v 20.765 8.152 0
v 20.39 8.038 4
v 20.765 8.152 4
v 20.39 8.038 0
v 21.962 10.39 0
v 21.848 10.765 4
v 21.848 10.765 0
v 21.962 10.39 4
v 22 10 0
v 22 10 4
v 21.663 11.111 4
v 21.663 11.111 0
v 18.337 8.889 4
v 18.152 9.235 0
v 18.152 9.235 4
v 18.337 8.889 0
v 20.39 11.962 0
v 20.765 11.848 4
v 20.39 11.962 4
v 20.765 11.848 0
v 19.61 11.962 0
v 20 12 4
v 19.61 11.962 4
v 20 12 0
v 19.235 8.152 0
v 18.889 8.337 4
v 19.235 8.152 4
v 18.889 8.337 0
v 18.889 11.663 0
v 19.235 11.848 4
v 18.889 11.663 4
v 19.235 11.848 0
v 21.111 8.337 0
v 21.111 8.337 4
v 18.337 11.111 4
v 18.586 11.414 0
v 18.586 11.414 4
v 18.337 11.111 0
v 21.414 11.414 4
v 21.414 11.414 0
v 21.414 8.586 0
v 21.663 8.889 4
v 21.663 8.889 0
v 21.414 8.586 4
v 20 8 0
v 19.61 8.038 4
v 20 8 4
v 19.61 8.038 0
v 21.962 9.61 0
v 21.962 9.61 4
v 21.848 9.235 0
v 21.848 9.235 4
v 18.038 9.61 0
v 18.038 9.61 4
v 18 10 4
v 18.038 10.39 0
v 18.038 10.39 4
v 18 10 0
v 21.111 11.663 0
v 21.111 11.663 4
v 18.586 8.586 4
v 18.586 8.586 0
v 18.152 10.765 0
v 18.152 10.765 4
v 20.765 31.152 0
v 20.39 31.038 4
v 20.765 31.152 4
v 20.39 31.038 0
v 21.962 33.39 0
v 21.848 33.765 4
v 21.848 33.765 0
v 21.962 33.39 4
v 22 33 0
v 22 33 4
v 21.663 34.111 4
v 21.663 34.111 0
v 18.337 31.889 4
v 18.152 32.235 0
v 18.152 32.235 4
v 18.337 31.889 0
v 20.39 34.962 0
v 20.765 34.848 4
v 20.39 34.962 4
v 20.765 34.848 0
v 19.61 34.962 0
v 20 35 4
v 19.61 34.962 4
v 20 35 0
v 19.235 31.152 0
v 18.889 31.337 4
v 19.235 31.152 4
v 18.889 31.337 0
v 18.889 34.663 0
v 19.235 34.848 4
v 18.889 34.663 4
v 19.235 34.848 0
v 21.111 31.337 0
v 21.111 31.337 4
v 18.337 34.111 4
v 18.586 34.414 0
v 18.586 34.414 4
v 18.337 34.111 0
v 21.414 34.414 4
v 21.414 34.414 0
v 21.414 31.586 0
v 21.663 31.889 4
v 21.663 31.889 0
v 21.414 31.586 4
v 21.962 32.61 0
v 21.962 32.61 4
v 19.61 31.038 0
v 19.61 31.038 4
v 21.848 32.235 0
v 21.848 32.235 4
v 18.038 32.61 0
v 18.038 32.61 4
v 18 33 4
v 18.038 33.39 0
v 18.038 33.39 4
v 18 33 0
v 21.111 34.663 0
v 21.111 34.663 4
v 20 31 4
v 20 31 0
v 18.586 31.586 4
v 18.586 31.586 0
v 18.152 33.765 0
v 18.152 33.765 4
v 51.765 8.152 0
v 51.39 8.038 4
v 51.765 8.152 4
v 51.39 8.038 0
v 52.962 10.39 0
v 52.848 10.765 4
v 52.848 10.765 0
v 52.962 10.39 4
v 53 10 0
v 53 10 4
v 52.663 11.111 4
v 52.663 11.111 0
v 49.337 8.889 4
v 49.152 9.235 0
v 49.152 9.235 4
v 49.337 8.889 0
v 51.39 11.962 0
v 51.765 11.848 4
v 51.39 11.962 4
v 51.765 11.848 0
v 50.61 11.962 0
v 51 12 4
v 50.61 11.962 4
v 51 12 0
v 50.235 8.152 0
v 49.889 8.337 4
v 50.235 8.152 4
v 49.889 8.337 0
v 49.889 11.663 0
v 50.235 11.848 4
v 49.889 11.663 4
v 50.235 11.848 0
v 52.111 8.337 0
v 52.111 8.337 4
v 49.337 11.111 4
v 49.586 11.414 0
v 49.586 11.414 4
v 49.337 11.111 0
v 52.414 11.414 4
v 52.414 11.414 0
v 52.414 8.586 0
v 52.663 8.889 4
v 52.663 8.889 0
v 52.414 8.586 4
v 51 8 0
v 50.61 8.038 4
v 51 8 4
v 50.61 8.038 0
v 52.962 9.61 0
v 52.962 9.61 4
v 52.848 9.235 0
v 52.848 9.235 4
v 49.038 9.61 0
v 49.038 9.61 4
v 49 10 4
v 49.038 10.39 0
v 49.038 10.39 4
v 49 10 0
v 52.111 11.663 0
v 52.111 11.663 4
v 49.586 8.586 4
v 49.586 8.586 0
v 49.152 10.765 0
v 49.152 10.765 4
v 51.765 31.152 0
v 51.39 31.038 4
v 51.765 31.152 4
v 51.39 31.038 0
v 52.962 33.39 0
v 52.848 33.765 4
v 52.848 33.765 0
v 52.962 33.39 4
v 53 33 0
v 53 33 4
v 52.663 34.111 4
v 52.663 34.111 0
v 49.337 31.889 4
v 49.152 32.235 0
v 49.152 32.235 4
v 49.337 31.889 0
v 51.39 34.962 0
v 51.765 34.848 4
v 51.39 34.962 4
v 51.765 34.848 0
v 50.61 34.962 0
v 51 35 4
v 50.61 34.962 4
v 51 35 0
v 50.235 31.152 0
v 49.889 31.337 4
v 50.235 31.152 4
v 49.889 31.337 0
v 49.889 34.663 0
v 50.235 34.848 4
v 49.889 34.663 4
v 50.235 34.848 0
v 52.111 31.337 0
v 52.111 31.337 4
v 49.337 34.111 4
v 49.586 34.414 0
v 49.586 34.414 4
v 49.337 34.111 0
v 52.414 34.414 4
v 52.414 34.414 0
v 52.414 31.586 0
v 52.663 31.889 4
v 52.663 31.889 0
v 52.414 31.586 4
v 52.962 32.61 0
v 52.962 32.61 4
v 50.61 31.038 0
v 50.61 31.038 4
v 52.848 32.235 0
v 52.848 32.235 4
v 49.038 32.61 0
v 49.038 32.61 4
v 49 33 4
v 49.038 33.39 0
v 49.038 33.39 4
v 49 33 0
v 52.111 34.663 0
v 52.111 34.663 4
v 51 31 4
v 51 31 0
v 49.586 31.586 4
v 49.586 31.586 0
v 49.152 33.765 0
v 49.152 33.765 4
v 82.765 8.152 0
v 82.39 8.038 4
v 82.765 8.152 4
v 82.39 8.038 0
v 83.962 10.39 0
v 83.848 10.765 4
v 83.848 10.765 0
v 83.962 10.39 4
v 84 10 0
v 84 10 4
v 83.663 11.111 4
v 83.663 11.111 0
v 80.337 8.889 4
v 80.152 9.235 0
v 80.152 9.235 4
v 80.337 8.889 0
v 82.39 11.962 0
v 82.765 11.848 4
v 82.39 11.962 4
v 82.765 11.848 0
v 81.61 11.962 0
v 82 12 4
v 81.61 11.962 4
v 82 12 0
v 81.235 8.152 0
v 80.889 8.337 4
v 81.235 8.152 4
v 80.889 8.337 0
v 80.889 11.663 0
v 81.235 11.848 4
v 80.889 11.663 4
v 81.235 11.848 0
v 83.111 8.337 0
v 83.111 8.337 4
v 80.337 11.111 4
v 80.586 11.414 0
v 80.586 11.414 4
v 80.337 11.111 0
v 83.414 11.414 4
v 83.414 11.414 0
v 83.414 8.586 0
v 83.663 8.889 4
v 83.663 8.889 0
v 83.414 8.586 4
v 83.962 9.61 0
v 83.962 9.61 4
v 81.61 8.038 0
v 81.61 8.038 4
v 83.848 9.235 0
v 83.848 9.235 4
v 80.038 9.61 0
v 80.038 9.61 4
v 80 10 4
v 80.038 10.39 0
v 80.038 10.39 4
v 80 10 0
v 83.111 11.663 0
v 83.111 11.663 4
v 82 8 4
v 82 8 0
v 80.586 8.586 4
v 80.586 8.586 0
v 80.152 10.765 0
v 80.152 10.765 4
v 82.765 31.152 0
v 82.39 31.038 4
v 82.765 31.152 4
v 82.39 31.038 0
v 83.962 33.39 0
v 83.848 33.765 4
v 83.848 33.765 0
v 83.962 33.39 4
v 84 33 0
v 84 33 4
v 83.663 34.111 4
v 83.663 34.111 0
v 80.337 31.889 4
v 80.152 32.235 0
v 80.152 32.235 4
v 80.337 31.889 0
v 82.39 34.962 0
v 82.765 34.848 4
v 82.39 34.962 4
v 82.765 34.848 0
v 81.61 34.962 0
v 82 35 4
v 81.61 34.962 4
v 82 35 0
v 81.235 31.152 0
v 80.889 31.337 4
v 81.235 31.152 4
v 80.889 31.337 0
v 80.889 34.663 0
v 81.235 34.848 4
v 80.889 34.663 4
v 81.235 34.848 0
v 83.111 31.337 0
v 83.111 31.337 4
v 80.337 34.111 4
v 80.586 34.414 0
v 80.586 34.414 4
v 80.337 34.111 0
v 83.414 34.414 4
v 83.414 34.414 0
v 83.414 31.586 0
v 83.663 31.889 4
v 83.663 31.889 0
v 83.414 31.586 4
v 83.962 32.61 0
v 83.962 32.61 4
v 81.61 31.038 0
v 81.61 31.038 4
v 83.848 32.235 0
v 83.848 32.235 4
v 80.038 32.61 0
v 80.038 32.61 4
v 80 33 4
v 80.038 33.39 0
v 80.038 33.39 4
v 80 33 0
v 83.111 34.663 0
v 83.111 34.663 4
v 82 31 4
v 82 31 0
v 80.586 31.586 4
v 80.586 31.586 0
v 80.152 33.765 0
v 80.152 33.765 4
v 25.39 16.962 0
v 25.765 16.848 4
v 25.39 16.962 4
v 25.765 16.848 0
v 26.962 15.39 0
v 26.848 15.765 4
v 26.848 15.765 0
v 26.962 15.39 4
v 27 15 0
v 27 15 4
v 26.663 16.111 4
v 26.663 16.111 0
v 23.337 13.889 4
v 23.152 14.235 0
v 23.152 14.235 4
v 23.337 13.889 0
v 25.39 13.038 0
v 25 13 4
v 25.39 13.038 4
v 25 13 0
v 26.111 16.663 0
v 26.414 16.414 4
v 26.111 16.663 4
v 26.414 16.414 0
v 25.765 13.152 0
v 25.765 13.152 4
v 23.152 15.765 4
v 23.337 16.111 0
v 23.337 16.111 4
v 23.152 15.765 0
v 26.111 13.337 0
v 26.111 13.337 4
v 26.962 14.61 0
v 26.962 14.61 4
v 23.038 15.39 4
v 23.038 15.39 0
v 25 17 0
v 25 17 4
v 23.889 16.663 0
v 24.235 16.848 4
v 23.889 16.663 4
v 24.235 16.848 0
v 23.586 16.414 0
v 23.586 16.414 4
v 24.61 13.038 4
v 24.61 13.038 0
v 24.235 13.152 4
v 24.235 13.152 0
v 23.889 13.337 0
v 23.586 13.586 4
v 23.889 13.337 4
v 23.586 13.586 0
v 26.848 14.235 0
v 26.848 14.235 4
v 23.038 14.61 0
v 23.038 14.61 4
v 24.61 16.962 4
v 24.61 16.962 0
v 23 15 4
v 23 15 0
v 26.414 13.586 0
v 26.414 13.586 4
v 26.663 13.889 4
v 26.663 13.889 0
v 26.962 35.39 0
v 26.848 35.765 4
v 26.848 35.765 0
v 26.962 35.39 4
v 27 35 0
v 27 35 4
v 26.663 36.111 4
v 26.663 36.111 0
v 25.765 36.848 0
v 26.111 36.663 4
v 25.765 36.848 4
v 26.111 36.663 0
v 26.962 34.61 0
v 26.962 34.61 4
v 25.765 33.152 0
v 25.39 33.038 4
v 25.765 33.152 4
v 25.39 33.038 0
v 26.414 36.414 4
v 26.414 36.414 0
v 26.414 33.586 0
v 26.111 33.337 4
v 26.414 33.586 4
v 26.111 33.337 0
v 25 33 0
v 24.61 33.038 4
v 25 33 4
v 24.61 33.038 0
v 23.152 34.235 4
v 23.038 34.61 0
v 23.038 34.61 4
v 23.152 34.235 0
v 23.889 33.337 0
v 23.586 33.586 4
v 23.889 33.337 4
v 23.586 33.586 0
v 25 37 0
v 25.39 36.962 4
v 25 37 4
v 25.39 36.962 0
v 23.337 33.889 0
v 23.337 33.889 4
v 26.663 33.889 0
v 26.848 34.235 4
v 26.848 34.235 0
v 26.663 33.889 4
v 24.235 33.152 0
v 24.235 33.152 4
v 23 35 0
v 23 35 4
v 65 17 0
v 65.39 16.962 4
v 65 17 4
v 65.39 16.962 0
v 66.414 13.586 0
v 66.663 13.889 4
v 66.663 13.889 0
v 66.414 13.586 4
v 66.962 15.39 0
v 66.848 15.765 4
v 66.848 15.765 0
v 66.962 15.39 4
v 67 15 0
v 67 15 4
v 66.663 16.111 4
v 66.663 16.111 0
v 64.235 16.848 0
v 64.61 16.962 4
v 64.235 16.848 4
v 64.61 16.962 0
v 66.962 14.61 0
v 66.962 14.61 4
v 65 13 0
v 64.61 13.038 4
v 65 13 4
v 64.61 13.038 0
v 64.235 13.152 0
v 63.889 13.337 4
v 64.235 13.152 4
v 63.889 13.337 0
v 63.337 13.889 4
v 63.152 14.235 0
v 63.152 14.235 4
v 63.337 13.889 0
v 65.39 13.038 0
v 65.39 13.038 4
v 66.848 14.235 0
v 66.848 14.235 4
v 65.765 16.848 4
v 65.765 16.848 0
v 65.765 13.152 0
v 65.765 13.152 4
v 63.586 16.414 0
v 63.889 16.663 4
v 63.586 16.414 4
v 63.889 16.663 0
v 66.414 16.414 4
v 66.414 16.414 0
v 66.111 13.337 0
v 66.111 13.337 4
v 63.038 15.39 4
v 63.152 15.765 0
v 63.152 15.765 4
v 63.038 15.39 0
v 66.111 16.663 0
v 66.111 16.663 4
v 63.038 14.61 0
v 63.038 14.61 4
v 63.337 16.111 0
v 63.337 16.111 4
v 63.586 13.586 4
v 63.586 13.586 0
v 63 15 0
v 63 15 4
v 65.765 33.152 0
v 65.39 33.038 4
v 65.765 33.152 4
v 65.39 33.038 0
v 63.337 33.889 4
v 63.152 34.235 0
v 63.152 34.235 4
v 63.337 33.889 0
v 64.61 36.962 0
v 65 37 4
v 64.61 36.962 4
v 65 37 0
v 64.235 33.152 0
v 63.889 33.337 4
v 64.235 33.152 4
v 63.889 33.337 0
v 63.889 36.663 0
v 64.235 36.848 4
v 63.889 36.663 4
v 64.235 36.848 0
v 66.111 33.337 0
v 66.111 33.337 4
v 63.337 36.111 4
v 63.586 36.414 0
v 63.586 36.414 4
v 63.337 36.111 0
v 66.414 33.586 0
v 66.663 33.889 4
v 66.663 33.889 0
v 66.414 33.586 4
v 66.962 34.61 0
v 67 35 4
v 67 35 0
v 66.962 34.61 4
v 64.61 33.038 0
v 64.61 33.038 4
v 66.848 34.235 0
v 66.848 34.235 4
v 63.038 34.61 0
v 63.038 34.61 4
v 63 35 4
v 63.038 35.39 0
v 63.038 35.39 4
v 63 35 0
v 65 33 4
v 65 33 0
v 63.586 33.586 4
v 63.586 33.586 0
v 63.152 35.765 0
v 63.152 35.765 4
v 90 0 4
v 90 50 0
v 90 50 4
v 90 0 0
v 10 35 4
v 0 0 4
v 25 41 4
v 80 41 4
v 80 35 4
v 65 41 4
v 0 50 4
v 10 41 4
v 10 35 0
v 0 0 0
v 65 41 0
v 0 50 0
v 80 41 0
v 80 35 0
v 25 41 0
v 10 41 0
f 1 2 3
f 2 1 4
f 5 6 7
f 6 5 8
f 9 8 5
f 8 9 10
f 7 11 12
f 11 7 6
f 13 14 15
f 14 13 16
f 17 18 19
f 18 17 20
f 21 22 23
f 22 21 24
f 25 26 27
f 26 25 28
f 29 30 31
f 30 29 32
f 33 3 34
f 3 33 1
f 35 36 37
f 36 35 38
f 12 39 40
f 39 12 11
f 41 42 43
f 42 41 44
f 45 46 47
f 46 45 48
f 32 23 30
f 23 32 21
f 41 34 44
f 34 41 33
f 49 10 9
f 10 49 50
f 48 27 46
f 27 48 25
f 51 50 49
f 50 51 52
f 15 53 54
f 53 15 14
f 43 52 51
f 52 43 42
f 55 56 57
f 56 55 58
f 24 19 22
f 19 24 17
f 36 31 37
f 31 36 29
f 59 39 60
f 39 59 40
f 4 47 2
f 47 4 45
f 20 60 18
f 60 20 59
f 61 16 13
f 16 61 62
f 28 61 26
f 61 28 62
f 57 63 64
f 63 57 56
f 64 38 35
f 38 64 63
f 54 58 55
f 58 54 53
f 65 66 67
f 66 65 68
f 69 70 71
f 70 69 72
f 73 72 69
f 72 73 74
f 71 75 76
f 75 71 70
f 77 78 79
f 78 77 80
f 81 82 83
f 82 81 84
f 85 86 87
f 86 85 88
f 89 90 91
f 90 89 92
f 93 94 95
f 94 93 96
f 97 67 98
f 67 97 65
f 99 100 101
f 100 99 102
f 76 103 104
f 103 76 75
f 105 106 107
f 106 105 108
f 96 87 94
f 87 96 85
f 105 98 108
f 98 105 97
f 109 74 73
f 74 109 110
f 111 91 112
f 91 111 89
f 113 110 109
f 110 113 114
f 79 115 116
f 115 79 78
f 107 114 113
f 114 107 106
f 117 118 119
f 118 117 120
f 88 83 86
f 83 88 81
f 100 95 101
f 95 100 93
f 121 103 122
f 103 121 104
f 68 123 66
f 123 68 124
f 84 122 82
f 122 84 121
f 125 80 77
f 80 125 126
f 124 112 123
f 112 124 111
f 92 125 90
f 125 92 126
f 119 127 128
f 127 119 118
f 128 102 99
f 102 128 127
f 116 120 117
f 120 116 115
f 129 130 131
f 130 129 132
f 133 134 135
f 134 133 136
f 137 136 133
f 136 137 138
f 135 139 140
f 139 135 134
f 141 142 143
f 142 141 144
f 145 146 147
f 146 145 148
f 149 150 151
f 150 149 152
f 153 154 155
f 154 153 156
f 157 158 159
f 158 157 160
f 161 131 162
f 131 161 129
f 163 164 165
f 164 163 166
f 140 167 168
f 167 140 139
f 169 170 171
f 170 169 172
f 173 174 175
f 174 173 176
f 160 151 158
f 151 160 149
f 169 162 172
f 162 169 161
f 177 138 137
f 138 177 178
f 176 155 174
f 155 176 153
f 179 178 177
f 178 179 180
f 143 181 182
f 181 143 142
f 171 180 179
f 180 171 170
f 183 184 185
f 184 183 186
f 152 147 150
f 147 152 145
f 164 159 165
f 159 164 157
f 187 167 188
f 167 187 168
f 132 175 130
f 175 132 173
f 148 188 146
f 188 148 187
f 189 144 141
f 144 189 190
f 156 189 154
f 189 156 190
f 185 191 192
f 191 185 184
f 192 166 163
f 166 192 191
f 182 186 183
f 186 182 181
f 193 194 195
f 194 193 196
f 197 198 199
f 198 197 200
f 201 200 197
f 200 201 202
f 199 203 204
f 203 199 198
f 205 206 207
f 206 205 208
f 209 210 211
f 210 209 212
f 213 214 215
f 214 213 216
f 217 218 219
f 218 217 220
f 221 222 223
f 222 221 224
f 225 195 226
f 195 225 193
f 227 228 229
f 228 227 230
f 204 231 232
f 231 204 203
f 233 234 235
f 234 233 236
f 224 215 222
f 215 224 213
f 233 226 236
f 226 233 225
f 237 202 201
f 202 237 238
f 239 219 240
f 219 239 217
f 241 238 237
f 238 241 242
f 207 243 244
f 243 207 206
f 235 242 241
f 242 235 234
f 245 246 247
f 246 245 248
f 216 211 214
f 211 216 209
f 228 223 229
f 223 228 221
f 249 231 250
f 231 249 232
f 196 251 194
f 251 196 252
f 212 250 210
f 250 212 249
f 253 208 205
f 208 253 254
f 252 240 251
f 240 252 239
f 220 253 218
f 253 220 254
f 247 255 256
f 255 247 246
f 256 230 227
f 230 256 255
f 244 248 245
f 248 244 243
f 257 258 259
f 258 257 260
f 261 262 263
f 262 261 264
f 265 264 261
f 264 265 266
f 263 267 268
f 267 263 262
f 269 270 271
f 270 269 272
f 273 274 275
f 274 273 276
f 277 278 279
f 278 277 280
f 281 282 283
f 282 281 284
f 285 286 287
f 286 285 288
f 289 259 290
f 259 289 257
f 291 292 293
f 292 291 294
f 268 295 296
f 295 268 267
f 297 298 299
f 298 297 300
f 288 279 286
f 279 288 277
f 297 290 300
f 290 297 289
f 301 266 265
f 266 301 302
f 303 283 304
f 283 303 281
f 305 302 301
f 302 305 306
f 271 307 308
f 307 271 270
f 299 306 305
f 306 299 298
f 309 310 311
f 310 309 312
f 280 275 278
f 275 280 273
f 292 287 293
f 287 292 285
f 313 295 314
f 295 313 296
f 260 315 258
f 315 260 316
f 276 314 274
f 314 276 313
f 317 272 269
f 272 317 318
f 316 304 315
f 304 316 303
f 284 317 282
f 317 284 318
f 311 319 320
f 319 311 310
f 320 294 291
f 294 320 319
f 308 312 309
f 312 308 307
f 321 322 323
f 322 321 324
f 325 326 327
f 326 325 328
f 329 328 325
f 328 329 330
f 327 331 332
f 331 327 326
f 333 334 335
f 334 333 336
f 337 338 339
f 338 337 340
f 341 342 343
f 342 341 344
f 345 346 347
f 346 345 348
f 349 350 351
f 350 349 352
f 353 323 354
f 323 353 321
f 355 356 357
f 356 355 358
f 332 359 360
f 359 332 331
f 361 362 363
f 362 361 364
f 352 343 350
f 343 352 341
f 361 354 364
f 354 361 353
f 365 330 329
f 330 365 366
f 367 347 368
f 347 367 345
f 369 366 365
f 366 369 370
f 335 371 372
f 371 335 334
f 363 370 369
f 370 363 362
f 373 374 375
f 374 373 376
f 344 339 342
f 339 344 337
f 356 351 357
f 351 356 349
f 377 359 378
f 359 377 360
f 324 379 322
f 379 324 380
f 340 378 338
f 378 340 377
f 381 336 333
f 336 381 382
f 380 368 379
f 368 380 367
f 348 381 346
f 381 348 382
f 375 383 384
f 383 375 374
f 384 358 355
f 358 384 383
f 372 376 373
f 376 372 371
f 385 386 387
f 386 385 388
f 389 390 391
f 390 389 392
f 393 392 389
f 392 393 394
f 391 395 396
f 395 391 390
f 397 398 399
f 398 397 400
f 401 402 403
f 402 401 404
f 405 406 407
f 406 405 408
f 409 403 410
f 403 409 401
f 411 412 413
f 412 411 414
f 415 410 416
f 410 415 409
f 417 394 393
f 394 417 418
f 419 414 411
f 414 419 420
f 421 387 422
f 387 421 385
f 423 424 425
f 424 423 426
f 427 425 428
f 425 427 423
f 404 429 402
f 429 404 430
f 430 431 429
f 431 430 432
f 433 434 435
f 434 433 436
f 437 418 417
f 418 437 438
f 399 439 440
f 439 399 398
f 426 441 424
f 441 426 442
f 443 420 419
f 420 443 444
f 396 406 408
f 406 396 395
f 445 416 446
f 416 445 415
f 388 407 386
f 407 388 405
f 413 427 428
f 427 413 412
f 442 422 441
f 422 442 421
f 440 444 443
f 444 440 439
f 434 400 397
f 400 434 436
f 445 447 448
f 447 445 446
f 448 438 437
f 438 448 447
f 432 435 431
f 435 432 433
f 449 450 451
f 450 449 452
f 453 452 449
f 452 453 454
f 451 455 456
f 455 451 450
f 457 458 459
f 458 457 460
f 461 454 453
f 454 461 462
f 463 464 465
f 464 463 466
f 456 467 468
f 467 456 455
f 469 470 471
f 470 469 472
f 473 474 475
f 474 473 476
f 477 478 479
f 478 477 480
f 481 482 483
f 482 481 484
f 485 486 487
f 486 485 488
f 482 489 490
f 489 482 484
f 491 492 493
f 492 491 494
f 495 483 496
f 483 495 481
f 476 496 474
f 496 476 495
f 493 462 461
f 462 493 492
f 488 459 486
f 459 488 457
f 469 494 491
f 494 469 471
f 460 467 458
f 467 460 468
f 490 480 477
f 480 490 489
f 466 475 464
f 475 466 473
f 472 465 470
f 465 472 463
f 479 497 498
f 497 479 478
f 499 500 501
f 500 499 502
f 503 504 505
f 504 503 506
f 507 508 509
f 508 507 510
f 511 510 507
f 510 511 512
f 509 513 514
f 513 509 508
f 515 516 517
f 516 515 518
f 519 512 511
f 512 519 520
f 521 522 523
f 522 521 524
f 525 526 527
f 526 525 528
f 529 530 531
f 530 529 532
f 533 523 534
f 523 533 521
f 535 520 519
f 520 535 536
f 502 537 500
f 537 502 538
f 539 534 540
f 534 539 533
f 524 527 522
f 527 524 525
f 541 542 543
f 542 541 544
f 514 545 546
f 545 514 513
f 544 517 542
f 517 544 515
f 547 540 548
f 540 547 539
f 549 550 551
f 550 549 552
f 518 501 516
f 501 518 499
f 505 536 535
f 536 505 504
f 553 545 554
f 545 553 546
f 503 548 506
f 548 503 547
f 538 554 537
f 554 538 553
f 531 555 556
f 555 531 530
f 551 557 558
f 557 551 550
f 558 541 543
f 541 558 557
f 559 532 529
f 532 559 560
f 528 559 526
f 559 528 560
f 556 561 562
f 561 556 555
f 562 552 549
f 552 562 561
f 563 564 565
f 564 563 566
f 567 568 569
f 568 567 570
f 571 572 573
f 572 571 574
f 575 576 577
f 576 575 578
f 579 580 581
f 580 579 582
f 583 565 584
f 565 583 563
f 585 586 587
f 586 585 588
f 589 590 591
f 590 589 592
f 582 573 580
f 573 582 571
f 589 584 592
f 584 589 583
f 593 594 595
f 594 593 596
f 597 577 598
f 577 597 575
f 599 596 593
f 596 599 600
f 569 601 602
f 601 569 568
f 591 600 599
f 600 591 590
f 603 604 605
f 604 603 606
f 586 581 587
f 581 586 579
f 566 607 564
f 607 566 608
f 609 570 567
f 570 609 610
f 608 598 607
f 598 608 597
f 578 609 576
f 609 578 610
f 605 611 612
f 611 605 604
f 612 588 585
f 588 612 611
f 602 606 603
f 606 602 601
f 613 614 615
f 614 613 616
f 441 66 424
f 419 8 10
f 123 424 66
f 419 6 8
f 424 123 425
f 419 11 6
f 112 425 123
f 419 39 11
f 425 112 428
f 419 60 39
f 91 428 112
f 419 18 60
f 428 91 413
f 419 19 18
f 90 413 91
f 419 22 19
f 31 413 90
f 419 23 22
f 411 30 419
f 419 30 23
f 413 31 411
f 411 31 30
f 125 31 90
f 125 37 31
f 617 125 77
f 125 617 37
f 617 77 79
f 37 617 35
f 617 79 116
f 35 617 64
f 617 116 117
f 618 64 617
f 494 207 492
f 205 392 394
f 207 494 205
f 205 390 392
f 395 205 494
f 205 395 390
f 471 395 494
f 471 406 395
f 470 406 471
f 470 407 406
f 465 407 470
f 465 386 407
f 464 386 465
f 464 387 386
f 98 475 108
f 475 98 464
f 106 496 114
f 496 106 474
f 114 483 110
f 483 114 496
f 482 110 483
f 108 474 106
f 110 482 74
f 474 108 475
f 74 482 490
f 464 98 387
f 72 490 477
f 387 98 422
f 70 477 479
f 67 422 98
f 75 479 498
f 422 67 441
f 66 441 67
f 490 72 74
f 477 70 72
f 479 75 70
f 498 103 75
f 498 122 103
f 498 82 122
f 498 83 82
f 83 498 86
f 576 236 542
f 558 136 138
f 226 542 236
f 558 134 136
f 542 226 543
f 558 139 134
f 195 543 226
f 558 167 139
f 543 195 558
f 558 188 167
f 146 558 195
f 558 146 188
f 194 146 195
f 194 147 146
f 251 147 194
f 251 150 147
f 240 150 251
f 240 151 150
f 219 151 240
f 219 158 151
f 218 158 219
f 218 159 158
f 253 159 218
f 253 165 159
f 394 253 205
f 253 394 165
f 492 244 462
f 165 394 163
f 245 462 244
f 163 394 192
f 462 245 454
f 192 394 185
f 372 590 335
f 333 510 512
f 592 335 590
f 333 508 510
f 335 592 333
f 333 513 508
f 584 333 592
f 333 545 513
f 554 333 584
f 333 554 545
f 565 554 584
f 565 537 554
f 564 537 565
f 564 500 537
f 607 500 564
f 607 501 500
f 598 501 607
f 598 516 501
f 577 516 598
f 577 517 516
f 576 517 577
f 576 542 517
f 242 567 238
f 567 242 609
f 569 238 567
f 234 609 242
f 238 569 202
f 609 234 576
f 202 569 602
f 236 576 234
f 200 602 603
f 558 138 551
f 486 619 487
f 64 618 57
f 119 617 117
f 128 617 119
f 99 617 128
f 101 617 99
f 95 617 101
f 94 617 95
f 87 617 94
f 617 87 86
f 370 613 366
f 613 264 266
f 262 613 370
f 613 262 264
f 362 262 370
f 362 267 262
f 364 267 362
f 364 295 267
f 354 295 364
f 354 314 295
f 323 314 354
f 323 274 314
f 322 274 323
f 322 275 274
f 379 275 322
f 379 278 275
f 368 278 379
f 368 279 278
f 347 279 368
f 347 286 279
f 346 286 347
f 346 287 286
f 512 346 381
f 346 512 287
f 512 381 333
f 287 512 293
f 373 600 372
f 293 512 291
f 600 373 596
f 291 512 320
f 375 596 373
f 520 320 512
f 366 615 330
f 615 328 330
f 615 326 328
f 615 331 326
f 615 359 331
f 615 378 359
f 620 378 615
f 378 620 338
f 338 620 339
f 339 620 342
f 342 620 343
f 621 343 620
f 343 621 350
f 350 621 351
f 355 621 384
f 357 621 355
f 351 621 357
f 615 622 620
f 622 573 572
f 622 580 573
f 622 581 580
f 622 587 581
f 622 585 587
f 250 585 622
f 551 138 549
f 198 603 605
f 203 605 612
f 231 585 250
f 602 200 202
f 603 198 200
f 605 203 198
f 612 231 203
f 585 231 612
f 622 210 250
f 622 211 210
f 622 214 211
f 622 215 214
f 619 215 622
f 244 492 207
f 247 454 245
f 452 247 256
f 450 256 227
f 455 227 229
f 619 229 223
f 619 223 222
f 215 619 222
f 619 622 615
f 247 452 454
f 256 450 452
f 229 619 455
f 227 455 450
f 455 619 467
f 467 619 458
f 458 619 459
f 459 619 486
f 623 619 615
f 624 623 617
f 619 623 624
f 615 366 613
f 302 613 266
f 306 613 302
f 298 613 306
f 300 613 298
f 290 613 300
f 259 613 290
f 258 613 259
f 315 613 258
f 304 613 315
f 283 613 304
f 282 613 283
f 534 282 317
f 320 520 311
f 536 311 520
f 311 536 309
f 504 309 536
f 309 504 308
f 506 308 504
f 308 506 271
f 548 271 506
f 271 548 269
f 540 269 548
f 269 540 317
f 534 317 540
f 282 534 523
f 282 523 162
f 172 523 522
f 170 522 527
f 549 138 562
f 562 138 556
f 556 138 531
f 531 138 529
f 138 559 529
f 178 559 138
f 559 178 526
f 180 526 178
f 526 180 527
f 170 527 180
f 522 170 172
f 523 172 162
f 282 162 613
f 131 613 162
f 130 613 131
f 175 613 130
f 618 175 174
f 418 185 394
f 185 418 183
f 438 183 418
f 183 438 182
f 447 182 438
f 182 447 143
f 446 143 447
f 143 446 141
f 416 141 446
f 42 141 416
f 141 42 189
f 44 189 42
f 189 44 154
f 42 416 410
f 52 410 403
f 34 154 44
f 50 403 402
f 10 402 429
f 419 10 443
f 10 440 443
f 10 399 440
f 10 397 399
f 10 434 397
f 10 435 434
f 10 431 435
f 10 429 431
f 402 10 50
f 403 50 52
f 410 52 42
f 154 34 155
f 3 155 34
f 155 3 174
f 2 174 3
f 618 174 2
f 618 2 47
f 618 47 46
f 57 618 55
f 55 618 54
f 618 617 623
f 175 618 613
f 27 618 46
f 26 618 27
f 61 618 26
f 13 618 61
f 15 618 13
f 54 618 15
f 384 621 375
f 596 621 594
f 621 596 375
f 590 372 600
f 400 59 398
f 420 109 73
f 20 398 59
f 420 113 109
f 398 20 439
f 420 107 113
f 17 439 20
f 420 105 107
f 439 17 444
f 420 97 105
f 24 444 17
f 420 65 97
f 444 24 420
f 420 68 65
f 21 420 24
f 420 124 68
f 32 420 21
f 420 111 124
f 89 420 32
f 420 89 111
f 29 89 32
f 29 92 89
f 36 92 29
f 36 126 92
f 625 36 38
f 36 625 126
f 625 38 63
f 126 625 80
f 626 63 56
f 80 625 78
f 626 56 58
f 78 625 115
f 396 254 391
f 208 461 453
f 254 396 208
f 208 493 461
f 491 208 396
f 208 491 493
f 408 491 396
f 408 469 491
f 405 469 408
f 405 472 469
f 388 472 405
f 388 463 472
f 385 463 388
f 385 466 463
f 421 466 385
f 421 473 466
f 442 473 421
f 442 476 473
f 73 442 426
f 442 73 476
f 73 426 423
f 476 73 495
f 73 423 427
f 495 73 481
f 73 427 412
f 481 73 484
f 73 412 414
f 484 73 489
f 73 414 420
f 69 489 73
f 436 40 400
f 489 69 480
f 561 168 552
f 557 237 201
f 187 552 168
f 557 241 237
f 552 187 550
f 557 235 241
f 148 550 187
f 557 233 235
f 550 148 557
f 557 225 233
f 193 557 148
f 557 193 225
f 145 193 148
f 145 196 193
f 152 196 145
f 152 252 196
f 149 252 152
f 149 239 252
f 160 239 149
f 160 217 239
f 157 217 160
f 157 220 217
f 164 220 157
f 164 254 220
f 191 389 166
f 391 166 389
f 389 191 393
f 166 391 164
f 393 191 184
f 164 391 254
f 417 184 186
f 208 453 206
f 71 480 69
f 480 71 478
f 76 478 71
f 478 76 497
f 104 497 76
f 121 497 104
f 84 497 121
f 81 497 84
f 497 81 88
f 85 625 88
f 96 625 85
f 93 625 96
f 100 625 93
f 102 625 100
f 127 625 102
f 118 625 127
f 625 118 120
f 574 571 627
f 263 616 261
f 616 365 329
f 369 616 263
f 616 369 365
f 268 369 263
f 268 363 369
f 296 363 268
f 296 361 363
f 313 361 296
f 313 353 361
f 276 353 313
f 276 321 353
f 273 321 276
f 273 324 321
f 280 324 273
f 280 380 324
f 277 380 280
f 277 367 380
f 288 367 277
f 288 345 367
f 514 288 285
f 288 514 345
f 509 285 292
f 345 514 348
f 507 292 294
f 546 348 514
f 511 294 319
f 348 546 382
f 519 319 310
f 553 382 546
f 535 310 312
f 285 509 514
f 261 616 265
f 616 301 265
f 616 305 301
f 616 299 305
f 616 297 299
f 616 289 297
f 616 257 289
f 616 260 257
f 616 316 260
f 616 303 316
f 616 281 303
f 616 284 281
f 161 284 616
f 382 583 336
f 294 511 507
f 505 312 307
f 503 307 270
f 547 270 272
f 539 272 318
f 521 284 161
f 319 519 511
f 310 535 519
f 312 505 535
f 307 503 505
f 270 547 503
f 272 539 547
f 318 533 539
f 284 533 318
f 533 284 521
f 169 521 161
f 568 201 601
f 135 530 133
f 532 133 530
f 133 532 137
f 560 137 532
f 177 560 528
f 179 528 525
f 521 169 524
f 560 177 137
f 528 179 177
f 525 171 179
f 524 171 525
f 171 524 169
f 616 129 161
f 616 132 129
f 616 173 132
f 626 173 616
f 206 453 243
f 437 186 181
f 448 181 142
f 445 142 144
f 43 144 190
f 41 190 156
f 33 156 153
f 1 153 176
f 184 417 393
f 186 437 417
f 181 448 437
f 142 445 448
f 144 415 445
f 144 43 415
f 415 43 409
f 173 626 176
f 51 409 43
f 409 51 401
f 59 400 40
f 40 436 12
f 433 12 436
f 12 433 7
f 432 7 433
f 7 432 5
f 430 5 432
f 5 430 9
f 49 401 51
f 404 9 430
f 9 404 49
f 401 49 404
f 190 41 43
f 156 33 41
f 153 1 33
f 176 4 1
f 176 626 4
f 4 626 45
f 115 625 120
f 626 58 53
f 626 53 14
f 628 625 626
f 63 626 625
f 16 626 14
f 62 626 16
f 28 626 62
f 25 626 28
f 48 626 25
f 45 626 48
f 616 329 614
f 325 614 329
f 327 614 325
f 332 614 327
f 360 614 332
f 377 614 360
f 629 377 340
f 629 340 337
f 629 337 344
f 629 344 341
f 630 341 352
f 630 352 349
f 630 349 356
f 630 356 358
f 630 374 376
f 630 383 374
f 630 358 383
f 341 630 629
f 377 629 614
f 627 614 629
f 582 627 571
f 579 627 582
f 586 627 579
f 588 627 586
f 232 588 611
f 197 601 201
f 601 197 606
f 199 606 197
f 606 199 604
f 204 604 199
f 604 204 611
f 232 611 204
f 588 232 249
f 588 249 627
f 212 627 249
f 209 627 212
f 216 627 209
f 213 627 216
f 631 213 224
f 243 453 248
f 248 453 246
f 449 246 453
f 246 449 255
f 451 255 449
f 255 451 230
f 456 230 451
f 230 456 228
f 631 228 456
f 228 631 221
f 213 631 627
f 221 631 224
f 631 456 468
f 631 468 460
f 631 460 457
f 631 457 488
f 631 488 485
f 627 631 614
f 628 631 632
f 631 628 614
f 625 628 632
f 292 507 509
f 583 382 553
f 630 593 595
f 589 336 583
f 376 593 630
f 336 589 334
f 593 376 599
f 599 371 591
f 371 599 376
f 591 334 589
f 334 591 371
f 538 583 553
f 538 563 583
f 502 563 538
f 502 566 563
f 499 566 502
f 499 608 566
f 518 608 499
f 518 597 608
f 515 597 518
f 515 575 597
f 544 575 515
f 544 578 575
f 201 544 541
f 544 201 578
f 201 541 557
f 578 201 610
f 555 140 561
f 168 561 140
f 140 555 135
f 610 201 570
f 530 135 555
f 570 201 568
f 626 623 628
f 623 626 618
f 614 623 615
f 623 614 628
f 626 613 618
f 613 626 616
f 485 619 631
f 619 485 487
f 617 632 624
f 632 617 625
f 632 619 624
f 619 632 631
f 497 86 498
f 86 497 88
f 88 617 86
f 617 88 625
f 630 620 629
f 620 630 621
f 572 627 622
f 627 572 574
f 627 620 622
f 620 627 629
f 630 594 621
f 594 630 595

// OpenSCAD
// Ender 2 Pro X Axis Carriage Plate Model
// prompt: Using OpenSCAD model the Ender 2 Pro X Axis Carriage Plate

// Main plate dimensions
plate_width = 90;
plate_height = 50;
plate_thickness = 4;

// Mounting hole parameters
hole_diameter = 4;
hole_spacing_x = 31;
hole_spacing_y = 23;

module carriage_plate() {
    difference() {
        // Main plate
        cube([plate_width, plate_height, plate_thickness]);
        
        // V-wheel mounting holes
        for(x = [20, 20 + hole_spacing_x, 20 + 2*hole_spacing_x]) {
            for(y = [10, 10 + hole_spacing_y]) {
                translate([x, y, -1])
                    cylinder(h=plate_thickness + 2, d=hole_diameter, $fn=32);
            }
        }
        
        // Hotend mount holes
        translate([plate_width/2, plate_height/2, -1]) {
            for(x = [-20, 20]) {
                for(y = [-10, 10]) {
                    translate([x, y, 0])
                        cylinder(h=plate_thickness + 2, d=hole_diameter, $fn=32);
                }
            }
        }
        
        // Belt attachment slots
        translate([10, plate_height - 15, -1]) {
            cube([15, 6, plate_thickness + 2]);
        }
        translate([plate_width - 25, plate_height - 15, -1]) {
            cube([15, 6, plate_thickness + 2]);
        }
    }
}

carriage_plate();
